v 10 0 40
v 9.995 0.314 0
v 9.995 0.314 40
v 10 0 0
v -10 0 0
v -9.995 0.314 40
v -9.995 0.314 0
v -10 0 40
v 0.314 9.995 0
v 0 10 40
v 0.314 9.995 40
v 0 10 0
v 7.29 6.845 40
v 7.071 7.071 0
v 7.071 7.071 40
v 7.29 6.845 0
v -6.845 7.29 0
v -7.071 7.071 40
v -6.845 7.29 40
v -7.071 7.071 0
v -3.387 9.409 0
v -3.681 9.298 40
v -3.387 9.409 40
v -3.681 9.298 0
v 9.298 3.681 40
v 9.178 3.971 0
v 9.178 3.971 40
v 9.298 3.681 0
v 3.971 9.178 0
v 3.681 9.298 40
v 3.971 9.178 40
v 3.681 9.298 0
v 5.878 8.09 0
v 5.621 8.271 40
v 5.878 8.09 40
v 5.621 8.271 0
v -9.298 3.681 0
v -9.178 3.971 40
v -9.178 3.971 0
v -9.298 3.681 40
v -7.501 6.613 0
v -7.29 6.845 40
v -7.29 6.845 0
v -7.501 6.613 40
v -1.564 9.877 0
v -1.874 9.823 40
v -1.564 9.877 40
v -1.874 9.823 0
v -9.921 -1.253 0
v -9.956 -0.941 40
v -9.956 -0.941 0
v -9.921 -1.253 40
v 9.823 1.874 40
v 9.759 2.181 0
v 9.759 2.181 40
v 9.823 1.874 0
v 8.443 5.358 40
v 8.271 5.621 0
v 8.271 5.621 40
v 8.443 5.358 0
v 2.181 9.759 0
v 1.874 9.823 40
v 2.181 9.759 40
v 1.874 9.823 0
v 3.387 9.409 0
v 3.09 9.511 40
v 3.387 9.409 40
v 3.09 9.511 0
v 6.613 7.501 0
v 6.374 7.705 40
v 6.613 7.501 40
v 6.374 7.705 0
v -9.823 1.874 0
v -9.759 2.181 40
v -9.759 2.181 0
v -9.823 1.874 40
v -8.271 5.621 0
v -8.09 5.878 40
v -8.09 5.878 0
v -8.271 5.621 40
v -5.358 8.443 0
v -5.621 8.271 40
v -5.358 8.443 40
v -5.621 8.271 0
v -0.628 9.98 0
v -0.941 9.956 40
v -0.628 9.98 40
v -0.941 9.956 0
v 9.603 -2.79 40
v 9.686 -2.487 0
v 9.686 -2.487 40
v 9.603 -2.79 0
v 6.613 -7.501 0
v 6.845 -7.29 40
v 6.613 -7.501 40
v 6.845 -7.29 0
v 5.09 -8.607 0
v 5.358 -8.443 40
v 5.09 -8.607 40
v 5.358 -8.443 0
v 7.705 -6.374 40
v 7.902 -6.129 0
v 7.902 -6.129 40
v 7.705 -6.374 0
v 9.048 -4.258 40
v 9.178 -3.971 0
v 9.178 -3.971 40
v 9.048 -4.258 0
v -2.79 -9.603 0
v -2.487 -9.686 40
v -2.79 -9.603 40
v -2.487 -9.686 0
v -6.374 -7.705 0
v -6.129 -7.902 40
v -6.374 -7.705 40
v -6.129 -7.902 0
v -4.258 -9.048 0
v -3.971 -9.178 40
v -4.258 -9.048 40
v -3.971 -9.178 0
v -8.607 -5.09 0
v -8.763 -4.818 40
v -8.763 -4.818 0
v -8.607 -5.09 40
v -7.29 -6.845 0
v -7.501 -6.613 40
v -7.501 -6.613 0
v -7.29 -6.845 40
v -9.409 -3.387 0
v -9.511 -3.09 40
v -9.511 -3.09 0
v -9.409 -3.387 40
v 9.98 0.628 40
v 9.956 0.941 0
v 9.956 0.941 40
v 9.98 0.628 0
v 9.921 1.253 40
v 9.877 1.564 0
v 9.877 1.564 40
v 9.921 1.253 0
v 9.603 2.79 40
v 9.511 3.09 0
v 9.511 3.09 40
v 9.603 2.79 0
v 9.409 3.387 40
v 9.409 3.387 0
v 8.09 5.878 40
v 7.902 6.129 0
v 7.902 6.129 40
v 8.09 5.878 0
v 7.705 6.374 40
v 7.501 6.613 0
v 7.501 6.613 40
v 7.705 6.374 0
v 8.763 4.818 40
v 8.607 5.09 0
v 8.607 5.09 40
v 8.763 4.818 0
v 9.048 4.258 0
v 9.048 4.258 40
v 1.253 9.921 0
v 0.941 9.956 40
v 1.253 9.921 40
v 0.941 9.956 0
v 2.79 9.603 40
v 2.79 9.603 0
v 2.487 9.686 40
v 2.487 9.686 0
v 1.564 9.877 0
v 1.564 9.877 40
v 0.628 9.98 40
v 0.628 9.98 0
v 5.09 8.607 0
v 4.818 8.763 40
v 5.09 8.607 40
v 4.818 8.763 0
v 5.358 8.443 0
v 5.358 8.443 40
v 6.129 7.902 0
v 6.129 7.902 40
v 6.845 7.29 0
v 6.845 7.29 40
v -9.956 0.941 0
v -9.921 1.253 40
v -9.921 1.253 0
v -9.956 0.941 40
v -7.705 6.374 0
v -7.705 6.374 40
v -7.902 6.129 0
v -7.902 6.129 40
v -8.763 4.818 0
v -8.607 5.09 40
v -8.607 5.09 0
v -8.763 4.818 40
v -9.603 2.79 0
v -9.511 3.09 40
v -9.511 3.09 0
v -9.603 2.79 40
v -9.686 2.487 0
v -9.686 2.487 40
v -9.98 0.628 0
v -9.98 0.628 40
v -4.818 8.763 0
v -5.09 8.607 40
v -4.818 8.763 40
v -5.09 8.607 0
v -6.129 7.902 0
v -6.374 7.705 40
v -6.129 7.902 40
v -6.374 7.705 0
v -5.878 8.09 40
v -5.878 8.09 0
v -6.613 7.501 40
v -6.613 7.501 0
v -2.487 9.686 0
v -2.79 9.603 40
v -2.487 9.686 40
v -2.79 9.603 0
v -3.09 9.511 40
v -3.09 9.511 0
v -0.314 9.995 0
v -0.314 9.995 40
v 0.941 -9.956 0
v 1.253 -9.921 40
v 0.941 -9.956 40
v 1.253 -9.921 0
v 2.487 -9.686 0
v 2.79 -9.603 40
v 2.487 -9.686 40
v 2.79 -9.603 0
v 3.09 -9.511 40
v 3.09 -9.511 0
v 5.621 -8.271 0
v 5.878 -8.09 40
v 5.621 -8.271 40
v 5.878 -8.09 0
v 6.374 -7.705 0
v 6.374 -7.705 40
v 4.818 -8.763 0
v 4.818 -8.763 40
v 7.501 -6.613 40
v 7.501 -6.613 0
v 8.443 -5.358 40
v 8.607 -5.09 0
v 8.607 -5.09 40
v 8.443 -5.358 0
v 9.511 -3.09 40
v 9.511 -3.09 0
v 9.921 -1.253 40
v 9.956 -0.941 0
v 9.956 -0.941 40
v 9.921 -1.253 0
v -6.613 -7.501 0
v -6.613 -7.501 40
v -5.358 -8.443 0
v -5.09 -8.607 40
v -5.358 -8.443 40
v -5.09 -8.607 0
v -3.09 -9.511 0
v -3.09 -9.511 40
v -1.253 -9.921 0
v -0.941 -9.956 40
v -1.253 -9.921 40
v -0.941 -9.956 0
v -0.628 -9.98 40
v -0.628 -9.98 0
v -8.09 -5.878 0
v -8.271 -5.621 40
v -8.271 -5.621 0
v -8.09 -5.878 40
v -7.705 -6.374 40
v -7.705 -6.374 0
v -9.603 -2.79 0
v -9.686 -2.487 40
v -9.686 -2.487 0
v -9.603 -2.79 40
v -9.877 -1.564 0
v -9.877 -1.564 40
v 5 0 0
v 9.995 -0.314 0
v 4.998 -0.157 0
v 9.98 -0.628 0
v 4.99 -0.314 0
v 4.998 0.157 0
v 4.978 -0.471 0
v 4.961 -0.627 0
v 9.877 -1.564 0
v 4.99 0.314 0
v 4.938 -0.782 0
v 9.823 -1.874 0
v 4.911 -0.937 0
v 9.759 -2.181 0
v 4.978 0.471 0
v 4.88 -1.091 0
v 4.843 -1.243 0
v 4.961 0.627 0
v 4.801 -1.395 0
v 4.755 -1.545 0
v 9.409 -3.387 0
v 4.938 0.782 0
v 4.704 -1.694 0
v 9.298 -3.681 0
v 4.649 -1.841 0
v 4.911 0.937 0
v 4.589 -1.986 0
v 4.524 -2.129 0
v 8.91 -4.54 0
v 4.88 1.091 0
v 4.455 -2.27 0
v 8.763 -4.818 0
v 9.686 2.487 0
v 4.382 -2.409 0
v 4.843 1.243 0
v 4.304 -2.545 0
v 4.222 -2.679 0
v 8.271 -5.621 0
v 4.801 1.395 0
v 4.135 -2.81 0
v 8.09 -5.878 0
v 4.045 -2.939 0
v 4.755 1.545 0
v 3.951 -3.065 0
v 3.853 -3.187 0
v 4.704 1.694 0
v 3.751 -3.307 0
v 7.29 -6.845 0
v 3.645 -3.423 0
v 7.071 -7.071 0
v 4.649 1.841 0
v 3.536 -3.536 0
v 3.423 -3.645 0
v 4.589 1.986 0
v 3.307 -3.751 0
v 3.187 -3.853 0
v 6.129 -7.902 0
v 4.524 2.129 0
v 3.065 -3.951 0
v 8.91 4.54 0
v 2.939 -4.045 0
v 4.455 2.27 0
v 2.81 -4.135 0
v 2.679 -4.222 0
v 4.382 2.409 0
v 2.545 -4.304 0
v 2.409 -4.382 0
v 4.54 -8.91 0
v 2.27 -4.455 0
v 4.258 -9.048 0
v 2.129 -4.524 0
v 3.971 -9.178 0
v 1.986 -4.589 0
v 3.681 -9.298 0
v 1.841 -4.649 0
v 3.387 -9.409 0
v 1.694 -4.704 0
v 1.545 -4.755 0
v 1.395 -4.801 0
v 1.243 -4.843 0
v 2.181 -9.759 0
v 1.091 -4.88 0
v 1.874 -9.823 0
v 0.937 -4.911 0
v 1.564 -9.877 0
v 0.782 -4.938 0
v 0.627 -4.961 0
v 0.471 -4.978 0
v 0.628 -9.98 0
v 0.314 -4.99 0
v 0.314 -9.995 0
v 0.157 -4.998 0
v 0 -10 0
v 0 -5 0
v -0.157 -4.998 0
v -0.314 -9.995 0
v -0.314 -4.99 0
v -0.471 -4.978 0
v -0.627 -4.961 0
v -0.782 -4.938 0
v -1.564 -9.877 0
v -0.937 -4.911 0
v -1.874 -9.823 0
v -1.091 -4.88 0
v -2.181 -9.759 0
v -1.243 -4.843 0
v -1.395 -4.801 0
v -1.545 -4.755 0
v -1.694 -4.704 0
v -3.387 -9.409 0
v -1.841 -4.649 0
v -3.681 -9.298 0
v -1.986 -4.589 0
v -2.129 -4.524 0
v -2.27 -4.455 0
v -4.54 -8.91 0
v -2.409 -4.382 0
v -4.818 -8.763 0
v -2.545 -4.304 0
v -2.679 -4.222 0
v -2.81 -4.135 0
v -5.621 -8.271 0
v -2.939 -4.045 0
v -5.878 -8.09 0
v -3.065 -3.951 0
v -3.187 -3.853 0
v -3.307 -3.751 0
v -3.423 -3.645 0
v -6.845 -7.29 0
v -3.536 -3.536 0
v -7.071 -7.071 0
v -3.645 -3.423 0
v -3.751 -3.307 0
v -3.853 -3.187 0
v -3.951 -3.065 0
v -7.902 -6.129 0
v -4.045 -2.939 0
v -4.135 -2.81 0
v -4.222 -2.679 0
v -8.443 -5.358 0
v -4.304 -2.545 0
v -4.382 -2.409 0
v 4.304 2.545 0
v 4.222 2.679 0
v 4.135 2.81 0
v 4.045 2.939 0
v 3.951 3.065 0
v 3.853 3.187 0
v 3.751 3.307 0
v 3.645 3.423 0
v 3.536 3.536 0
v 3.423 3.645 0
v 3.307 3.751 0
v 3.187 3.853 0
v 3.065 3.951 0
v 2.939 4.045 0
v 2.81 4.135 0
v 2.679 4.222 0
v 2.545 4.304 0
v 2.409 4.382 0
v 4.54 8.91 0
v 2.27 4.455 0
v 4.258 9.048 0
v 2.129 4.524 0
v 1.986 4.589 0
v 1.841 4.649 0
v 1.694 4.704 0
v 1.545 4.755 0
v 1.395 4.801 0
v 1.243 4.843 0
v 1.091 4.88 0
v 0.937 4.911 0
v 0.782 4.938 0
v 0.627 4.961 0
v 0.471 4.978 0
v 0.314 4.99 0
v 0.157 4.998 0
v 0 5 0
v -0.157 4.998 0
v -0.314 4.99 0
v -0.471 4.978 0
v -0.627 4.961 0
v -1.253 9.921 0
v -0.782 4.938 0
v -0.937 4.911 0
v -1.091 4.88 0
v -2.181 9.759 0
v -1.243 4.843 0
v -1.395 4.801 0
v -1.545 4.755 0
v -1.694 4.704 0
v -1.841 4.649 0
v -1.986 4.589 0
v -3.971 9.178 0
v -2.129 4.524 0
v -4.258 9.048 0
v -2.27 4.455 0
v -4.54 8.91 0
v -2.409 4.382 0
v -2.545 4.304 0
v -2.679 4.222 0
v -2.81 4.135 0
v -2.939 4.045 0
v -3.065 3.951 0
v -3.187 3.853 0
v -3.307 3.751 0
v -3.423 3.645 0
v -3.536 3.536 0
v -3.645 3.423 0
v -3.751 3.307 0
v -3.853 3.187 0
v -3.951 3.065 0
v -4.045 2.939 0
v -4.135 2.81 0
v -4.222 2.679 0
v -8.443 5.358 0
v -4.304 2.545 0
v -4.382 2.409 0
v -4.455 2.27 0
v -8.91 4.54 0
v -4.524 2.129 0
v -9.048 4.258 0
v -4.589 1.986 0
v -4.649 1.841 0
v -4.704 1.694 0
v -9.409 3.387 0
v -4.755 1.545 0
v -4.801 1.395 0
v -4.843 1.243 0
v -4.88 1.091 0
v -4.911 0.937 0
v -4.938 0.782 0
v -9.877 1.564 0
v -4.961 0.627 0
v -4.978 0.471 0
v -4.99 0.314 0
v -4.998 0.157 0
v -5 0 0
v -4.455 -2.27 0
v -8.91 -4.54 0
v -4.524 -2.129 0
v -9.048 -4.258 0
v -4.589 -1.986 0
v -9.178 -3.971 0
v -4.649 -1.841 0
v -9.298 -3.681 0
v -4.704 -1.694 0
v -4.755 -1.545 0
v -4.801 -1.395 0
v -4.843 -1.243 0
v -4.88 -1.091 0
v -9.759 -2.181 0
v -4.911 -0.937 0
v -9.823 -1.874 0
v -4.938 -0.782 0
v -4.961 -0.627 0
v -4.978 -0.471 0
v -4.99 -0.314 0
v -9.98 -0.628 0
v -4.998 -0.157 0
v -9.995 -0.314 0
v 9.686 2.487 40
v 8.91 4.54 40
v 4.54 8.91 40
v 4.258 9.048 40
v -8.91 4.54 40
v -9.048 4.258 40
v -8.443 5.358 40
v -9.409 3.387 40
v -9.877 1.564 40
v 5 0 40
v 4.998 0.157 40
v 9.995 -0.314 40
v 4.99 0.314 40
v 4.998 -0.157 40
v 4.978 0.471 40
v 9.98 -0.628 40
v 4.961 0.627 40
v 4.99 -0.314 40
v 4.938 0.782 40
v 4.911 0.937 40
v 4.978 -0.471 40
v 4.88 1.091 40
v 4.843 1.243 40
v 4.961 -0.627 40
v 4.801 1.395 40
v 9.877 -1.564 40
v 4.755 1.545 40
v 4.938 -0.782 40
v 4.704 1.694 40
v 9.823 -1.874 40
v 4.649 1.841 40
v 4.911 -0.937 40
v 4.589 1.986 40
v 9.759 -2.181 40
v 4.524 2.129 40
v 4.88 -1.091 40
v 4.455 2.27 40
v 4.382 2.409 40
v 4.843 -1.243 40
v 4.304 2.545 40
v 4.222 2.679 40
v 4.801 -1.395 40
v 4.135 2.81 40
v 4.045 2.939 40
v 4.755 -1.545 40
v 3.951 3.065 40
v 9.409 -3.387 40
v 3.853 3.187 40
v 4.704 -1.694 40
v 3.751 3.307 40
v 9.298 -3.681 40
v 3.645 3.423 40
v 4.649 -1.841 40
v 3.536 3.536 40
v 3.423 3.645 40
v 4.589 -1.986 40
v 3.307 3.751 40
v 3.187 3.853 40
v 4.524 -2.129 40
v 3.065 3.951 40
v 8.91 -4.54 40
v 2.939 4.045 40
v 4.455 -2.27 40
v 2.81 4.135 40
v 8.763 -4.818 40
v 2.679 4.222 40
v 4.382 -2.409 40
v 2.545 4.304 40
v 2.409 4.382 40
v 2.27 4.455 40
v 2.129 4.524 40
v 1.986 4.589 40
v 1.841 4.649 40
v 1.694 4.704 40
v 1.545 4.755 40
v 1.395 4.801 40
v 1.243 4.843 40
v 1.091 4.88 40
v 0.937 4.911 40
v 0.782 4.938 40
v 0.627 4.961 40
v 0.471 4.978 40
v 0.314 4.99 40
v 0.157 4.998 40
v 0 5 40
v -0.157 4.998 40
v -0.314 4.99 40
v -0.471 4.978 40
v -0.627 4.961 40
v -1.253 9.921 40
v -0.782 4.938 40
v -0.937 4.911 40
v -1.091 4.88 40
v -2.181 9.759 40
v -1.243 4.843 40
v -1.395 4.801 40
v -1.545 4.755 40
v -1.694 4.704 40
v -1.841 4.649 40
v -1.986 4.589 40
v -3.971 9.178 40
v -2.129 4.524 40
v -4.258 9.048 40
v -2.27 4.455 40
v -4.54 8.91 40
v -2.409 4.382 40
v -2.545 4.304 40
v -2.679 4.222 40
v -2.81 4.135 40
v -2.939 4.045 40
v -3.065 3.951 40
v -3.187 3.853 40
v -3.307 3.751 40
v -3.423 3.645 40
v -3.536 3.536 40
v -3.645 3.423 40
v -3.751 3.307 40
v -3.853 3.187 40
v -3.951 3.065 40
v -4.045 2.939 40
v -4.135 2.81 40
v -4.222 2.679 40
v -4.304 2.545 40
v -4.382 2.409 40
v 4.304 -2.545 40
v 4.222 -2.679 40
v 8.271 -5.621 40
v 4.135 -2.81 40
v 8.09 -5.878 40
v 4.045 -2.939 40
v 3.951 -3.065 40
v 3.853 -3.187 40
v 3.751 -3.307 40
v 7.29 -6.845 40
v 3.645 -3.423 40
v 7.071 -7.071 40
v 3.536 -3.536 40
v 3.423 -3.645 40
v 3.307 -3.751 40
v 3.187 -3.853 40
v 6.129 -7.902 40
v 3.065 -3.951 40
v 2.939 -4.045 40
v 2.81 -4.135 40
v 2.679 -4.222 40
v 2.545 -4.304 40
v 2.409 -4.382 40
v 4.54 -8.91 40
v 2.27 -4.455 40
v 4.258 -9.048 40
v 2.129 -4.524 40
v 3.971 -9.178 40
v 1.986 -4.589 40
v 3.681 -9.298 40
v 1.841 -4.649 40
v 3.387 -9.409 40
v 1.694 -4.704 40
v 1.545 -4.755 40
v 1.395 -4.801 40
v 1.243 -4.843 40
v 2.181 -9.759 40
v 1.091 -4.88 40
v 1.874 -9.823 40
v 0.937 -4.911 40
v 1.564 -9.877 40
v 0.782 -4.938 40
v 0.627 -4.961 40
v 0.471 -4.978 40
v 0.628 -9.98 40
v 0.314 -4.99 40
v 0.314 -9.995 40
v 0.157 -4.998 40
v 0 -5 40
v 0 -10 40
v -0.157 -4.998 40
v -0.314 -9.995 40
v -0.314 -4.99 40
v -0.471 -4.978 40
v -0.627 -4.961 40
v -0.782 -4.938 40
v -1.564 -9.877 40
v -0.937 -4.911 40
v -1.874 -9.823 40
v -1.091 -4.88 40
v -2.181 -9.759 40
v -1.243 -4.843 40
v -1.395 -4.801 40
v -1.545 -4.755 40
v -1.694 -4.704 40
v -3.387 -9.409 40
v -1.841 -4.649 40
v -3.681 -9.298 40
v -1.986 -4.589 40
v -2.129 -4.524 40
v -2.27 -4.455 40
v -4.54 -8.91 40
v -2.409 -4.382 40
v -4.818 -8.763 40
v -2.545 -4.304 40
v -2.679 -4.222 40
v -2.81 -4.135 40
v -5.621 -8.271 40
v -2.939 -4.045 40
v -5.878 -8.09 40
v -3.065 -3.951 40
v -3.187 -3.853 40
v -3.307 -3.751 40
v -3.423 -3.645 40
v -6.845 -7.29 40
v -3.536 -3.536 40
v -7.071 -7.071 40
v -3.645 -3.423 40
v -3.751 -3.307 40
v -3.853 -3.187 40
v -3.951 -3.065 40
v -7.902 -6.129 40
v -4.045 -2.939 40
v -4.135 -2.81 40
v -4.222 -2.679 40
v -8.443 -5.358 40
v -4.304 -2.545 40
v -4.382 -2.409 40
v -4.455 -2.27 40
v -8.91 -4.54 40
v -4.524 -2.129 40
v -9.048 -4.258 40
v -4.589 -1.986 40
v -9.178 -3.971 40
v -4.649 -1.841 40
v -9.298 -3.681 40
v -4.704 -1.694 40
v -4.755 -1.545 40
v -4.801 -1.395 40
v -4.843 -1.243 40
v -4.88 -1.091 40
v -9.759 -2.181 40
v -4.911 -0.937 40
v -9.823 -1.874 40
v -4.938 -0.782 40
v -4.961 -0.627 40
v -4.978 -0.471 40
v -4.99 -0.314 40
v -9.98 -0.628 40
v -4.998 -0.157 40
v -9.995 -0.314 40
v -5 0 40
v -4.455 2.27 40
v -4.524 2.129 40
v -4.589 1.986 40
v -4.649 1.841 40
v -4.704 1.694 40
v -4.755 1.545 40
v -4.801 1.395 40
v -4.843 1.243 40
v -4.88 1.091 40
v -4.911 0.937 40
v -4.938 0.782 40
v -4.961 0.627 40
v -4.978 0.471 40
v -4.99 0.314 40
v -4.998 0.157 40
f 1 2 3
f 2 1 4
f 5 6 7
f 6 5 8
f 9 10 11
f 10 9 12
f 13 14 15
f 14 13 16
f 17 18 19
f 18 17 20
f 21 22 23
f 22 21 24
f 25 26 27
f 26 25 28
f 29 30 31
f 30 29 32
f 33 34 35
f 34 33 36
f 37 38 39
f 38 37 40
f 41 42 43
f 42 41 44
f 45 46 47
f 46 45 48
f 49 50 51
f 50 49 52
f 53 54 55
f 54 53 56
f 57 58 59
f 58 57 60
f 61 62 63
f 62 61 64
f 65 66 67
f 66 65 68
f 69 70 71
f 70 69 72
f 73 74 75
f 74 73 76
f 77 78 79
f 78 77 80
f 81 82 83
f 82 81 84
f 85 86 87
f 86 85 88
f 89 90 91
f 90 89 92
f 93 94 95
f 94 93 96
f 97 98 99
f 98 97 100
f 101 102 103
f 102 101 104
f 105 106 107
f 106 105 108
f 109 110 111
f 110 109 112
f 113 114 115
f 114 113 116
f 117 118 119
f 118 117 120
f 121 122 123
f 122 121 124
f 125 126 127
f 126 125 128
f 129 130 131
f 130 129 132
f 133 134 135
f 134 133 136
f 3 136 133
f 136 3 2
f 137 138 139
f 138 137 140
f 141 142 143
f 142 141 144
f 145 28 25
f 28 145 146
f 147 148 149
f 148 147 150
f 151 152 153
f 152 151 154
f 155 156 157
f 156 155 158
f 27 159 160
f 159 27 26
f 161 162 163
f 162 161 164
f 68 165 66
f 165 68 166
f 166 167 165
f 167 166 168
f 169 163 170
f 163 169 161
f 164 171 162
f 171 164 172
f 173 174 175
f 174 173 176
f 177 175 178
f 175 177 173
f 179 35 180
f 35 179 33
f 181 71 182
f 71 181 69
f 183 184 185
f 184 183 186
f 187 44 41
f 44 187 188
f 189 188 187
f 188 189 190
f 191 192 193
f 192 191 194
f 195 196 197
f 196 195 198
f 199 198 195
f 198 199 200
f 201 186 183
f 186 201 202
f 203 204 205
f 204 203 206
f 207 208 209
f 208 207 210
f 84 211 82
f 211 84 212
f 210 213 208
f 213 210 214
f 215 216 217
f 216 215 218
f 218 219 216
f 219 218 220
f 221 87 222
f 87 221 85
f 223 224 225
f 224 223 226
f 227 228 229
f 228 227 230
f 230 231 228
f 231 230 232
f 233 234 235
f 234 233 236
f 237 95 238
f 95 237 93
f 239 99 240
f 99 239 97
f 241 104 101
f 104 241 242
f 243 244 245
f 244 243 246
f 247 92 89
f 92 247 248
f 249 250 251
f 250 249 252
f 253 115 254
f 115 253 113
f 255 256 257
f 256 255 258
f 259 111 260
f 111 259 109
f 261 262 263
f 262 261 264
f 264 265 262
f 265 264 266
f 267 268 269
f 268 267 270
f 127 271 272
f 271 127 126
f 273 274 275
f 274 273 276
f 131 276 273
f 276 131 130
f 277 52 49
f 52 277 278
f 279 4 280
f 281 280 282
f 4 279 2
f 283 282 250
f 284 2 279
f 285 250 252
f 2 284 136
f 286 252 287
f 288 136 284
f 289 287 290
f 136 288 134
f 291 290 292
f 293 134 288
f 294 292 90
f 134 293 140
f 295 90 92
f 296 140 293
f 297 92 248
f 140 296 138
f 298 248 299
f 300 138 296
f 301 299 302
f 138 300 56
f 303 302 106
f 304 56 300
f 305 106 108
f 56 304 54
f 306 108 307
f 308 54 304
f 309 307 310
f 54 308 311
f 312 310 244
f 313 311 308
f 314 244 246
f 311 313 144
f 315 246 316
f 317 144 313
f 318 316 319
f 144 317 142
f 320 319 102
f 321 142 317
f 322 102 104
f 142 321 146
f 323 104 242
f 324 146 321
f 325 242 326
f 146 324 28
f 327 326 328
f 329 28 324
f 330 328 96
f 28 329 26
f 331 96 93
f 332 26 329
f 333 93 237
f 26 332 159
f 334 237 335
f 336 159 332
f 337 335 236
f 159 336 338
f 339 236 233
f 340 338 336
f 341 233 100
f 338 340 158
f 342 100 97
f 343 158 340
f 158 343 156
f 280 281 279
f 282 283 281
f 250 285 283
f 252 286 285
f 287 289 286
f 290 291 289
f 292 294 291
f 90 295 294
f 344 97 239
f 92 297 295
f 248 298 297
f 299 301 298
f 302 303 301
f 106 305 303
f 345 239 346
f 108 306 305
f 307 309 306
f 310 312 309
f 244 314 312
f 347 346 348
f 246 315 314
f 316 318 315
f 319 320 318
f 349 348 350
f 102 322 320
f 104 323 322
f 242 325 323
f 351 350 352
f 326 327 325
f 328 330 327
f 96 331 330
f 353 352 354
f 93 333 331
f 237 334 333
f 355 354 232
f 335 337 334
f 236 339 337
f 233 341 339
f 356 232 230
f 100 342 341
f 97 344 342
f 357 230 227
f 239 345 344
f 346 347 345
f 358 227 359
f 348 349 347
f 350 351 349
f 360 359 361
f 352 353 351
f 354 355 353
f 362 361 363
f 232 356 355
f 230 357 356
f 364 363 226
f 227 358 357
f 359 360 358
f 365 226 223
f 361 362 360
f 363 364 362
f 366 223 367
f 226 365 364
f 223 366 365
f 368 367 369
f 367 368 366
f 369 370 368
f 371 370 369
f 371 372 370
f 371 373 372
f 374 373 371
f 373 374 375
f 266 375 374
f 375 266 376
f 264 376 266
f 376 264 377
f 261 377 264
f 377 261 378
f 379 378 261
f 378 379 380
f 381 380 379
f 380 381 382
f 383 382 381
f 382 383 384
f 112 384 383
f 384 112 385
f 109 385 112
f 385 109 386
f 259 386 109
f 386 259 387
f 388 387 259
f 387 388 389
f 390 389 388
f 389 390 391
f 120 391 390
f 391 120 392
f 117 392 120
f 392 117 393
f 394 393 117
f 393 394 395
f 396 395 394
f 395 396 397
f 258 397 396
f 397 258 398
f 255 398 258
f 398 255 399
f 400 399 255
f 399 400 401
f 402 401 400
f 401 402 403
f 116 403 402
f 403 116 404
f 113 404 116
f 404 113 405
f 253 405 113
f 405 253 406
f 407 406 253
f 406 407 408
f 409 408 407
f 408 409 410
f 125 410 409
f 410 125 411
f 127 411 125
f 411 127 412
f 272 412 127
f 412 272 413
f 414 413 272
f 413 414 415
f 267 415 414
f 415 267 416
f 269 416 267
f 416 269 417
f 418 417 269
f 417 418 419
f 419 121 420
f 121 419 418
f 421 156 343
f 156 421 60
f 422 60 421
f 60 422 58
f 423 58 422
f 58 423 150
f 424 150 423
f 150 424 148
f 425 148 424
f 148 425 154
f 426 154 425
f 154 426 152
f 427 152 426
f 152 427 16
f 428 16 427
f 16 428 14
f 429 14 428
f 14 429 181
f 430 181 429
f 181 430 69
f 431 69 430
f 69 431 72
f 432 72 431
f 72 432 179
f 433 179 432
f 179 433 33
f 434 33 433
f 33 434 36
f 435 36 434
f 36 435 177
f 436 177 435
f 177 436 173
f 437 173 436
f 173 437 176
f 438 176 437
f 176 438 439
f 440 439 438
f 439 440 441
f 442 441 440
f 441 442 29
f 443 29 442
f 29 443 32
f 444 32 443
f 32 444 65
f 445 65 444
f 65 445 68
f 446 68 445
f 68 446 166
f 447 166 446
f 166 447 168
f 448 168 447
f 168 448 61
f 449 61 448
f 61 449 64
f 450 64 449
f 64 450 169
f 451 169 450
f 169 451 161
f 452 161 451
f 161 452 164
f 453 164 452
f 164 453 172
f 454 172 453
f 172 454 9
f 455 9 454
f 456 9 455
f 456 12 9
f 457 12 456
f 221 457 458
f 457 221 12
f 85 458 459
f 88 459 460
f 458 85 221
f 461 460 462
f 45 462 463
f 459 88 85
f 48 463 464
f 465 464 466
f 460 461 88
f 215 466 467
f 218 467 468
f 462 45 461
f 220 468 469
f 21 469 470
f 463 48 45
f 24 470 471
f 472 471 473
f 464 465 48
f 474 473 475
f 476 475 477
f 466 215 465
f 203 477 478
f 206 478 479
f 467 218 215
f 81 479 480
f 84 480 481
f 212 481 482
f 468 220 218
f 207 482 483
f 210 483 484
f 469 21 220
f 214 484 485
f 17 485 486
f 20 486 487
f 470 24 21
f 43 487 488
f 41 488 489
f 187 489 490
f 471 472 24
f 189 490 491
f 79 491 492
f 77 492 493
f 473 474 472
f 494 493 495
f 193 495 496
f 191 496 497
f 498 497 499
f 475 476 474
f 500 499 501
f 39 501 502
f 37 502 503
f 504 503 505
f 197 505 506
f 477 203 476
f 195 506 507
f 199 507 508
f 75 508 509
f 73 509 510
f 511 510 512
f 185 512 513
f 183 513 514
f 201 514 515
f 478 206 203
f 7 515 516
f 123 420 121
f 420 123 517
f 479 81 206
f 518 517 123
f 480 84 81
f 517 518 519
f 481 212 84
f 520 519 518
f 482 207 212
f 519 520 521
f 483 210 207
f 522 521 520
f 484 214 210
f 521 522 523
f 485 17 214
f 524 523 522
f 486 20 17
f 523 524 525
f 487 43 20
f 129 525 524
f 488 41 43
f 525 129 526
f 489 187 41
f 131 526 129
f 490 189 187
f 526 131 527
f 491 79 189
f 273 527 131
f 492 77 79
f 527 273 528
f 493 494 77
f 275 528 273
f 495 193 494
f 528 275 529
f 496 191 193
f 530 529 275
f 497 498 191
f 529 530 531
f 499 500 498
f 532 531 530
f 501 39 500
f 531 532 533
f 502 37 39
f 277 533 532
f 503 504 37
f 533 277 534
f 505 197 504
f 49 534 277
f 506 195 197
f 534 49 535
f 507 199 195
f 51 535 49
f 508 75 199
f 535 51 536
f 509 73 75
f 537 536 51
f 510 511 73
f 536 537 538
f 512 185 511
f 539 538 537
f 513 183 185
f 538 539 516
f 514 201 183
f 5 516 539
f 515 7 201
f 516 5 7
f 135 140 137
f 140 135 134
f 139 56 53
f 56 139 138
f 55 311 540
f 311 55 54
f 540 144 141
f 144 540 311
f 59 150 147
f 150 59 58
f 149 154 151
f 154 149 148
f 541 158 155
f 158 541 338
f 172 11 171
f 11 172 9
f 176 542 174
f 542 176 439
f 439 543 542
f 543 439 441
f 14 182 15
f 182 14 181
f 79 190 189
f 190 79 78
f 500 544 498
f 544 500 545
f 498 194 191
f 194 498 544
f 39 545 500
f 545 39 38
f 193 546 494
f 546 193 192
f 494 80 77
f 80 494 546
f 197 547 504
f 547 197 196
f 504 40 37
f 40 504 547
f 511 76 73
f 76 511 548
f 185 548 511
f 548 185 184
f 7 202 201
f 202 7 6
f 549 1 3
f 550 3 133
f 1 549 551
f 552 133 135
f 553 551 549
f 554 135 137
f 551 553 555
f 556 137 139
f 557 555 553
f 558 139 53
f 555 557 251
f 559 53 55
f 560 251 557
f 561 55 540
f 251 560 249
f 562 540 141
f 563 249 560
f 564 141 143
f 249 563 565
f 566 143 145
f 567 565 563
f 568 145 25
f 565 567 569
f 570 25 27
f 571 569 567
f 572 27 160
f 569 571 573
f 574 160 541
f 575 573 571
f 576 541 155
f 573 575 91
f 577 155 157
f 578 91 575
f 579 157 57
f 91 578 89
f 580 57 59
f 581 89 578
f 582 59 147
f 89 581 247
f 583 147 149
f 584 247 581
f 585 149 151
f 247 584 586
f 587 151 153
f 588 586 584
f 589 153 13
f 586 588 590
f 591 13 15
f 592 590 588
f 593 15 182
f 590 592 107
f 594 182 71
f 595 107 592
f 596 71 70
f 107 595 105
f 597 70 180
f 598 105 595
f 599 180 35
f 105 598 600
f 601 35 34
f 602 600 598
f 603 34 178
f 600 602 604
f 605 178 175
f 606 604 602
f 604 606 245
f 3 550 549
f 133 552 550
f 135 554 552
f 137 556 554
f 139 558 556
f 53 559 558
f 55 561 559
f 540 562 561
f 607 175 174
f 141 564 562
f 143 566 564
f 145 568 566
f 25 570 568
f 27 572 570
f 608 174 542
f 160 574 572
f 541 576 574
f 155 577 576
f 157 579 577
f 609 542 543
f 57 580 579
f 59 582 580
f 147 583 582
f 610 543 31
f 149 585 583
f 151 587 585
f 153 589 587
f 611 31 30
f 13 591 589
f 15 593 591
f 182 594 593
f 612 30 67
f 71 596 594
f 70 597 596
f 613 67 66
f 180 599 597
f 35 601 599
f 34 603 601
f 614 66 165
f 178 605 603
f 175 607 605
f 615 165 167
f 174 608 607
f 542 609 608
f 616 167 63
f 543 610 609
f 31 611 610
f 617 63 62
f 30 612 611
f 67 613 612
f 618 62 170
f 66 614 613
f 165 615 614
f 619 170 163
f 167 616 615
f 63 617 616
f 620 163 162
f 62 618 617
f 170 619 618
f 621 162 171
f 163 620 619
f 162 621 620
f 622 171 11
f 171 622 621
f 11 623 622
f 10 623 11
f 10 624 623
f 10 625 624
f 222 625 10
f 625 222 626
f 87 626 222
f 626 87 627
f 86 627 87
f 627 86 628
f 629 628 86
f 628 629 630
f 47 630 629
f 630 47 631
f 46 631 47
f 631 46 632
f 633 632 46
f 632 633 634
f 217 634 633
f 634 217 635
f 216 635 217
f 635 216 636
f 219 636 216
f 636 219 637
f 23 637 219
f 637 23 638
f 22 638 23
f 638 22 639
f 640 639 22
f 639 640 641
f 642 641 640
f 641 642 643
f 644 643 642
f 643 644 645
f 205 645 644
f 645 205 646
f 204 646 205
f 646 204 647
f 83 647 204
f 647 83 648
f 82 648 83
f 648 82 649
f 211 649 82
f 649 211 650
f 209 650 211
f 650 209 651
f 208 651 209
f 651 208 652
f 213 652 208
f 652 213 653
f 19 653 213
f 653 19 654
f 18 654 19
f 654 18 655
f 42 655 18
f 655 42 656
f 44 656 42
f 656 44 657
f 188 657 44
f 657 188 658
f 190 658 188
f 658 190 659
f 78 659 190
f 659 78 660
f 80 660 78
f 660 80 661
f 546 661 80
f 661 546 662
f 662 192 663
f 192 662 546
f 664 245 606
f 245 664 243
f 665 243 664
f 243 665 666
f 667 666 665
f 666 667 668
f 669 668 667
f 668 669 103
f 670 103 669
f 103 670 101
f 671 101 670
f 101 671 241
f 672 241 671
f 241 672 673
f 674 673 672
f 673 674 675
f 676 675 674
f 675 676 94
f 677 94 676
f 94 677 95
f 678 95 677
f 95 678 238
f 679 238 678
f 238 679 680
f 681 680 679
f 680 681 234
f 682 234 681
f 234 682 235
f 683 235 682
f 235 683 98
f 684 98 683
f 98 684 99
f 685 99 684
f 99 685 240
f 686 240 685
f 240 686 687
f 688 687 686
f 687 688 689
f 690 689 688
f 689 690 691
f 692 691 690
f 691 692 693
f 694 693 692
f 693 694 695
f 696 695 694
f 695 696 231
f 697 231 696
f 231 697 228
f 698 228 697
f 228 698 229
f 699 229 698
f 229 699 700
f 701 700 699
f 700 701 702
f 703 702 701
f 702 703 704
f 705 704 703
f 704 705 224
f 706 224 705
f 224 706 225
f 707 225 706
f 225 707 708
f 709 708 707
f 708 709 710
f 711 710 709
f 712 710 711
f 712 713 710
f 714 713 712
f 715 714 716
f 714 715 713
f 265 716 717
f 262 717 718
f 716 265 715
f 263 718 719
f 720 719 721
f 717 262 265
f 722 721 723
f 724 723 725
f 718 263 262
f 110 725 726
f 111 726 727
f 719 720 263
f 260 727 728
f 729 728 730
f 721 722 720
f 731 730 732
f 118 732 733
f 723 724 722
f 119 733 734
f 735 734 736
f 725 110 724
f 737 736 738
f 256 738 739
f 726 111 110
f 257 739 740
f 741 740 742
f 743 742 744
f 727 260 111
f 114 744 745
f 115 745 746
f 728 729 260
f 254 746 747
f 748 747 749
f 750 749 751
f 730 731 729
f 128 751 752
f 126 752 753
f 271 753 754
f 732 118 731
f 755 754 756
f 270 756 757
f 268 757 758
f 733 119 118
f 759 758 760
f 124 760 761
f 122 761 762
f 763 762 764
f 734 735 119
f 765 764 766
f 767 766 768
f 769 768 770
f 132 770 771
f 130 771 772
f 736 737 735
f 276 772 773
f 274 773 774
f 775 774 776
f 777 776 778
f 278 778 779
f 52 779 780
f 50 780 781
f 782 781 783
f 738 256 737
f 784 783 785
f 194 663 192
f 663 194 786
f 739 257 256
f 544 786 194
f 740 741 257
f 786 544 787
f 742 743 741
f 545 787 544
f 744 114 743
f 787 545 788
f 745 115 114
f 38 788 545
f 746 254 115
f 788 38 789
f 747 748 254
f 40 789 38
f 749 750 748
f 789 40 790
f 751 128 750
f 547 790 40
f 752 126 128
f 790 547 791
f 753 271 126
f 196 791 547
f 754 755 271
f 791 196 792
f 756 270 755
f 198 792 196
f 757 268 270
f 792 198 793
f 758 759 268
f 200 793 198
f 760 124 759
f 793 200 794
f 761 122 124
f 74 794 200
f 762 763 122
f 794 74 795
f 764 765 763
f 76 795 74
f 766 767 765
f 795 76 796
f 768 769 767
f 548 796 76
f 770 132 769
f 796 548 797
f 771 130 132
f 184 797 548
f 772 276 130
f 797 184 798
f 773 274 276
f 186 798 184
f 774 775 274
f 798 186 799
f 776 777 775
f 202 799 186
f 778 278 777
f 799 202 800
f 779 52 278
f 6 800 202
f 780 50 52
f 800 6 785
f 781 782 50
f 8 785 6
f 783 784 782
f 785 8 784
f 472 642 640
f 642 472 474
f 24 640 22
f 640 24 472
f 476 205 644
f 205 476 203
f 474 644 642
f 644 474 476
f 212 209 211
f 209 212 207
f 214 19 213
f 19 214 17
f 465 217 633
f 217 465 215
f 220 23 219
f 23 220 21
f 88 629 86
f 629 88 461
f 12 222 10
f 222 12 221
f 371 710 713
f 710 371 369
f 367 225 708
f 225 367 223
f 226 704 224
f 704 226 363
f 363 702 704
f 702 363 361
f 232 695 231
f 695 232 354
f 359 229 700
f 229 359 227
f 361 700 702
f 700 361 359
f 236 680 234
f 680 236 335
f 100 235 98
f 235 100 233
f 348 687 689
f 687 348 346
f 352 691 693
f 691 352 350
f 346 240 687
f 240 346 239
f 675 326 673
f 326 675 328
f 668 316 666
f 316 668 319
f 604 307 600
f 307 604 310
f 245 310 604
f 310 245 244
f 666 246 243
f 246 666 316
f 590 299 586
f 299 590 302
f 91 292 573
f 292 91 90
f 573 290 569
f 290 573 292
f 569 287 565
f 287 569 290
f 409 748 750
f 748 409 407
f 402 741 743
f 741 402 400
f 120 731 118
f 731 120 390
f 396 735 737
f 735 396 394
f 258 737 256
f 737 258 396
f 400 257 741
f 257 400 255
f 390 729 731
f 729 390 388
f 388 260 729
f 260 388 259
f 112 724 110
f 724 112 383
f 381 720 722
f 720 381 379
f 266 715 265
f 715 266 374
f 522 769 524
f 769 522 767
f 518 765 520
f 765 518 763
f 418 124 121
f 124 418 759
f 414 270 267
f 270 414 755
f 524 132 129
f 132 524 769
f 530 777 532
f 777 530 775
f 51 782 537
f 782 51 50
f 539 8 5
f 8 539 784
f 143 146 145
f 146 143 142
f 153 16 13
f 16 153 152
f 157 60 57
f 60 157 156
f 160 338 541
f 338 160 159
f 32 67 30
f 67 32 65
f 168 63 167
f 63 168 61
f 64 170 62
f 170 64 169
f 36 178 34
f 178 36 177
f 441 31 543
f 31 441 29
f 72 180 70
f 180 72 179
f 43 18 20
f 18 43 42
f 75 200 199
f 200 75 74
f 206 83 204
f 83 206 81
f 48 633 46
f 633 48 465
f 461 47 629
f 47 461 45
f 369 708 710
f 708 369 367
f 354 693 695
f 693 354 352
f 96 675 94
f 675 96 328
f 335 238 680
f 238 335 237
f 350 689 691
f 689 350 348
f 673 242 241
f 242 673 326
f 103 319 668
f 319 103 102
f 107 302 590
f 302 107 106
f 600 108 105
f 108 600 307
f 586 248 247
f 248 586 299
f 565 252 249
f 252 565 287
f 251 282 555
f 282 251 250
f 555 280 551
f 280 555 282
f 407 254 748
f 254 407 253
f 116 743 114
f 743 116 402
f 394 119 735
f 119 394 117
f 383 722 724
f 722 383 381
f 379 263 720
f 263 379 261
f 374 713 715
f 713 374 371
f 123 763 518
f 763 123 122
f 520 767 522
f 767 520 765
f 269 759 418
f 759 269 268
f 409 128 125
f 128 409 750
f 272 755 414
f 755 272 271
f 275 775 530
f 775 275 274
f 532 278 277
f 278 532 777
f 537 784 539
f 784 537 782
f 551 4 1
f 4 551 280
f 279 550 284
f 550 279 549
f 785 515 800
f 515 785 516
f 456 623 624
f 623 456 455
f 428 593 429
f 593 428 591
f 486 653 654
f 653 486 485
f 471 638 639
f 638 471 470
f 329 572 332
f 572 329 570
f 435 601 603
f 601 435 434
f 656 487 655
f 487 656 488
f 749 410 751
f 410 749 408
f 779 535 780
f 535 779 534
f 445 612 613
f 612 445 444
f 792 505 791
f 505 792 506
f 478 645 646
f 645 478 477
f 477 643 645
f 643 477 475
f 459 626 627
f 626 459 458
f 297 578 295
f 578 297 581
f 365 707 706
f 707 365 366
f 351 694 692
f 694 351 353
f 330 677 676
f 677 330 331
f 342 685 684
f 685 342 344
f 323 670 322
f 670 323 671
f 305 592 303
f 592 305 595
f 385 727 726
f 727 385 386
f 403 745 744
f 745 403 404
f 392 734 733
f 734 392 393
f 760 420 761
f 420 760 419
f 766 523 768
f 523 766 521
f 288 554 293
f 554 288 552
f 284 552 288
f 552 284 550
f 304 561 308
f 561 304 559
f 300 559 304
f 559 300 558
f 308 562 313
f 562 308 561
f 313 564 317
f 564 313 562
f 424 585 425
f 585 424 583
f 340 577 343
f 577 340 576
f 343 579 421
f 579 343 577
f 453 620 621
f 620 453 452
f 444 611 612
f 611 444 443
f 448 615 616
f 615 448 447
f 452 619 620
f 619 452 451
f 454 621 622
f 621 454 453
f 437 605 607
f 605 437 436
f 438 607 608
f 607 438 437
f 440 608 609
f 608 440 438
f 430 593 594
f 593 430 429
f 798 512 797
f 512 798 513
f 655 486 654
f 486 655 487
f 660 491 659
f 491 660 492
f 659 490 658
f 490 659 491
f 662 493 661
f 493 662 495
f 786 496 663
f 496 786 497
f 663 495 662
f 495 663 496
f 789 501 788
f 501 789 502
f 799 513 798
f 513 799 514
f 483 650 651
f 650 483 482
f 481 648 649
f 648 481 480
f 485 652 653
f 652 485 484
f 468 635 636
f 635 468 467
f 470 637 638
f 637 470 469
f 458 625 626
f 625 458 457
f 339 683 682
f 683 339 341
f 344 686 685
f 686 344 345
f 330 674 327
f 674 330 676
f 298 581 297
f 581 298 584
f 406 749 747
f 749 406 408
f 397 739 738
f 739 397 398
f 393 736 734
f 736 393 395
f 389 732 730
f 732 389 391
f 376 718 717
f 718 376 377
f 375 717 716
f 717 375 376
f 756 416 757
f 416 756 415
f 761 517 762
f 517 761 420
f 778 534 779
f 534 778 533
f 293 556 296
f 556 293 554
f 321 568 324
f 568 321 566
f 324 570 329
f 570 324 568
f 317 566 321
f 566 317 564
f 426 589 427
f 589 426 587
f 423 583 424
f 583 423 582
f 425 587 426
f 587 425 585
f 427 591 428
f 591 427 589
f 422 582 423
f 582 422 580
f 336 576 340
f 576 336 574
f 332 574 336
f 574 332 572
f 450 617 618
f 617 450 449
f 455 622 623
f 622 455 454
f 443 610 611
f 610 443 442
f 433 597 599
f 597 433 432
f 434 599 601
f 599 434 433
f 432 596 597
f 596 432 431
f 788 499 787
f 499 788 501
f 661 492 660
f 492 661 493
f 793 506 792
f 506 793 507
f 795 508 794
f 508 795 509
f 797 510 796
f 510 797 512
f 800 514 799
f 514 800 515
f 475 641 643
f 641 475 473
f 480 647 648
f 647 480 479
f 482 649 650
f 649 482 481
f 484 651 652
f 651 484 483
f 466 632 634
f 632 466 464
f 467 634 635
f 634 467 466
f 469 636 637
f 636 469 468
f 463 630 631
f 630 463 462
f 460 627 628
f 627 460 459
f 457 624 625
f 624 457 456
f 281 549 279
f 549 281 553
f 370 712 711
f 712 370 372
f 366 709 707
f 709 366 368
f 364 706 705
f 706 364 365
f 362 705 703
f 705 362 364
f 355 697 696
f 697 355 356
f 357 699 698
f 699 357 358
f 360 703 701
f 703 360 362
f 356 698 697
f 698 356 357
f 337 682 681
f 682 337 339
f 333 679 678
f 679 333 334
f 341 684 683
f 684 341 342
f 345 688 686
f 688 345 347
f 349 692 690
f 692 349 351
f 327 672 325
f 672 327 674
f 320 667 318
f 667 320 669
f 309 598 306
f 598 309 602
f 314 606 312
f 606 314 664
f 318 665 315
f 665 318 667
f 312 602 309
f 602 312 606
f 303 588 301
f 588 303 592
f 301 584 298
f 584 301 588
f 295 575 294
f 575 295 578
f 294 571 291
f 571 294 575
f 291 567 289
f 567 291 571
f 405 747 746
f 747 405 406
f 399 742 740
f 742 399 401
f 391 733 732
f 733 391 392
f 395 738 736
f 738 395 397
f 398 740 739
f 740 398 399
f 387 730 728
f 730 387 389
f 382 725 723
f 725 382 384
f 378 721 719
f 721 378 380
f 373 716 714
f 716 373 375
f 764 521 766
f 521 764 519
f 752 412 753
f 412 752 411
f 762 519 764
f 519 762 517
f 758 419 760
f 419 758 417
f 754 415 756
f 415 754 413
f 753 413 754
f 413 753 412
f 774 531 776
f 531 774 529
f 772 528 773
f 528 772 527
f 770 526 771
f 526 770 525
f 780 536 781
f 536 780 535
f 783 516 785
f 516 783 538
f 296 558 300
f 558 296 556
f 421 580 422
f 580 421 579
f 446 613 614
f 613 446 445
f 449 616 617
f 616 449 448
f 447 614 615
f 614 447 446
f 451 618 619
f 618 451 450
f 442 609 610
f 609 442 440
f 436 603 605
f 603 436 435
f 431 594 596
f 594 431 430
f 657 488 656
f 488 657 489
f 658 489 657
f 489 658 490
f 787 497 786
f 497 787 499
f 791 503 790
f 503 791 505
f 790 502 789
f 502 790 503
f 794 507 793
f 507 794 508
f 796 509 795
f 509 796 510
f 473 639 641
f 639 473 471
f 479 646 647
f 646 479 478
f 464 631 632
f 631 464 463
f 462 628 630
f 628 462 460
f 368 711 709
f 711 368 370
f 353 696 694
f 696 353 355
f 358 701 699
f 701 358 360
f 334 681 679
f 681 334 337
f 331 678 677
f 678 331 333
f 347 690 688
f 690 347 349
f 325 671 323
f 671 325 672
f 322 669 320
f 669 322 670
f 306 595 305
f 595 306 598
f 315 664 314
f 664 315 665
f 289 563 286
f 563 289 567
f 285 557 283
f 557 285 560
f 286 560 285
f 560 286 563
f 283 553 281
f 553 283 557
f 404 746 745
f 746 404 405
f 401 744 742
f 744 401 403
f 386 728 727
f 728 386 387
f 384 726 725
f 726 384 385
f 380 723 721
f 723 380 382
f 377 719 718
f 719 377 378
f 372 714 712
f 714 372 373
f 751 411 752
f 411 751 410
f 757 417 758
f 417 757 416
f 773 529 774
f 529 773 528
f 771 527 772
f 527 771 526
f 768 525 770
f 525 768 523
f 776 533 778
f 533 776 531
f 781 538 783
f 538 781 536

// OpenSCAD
$fn=200;
difference()
{
 cylinder(40, 10, 10);
 cylinder(40, 5, 5);
}
